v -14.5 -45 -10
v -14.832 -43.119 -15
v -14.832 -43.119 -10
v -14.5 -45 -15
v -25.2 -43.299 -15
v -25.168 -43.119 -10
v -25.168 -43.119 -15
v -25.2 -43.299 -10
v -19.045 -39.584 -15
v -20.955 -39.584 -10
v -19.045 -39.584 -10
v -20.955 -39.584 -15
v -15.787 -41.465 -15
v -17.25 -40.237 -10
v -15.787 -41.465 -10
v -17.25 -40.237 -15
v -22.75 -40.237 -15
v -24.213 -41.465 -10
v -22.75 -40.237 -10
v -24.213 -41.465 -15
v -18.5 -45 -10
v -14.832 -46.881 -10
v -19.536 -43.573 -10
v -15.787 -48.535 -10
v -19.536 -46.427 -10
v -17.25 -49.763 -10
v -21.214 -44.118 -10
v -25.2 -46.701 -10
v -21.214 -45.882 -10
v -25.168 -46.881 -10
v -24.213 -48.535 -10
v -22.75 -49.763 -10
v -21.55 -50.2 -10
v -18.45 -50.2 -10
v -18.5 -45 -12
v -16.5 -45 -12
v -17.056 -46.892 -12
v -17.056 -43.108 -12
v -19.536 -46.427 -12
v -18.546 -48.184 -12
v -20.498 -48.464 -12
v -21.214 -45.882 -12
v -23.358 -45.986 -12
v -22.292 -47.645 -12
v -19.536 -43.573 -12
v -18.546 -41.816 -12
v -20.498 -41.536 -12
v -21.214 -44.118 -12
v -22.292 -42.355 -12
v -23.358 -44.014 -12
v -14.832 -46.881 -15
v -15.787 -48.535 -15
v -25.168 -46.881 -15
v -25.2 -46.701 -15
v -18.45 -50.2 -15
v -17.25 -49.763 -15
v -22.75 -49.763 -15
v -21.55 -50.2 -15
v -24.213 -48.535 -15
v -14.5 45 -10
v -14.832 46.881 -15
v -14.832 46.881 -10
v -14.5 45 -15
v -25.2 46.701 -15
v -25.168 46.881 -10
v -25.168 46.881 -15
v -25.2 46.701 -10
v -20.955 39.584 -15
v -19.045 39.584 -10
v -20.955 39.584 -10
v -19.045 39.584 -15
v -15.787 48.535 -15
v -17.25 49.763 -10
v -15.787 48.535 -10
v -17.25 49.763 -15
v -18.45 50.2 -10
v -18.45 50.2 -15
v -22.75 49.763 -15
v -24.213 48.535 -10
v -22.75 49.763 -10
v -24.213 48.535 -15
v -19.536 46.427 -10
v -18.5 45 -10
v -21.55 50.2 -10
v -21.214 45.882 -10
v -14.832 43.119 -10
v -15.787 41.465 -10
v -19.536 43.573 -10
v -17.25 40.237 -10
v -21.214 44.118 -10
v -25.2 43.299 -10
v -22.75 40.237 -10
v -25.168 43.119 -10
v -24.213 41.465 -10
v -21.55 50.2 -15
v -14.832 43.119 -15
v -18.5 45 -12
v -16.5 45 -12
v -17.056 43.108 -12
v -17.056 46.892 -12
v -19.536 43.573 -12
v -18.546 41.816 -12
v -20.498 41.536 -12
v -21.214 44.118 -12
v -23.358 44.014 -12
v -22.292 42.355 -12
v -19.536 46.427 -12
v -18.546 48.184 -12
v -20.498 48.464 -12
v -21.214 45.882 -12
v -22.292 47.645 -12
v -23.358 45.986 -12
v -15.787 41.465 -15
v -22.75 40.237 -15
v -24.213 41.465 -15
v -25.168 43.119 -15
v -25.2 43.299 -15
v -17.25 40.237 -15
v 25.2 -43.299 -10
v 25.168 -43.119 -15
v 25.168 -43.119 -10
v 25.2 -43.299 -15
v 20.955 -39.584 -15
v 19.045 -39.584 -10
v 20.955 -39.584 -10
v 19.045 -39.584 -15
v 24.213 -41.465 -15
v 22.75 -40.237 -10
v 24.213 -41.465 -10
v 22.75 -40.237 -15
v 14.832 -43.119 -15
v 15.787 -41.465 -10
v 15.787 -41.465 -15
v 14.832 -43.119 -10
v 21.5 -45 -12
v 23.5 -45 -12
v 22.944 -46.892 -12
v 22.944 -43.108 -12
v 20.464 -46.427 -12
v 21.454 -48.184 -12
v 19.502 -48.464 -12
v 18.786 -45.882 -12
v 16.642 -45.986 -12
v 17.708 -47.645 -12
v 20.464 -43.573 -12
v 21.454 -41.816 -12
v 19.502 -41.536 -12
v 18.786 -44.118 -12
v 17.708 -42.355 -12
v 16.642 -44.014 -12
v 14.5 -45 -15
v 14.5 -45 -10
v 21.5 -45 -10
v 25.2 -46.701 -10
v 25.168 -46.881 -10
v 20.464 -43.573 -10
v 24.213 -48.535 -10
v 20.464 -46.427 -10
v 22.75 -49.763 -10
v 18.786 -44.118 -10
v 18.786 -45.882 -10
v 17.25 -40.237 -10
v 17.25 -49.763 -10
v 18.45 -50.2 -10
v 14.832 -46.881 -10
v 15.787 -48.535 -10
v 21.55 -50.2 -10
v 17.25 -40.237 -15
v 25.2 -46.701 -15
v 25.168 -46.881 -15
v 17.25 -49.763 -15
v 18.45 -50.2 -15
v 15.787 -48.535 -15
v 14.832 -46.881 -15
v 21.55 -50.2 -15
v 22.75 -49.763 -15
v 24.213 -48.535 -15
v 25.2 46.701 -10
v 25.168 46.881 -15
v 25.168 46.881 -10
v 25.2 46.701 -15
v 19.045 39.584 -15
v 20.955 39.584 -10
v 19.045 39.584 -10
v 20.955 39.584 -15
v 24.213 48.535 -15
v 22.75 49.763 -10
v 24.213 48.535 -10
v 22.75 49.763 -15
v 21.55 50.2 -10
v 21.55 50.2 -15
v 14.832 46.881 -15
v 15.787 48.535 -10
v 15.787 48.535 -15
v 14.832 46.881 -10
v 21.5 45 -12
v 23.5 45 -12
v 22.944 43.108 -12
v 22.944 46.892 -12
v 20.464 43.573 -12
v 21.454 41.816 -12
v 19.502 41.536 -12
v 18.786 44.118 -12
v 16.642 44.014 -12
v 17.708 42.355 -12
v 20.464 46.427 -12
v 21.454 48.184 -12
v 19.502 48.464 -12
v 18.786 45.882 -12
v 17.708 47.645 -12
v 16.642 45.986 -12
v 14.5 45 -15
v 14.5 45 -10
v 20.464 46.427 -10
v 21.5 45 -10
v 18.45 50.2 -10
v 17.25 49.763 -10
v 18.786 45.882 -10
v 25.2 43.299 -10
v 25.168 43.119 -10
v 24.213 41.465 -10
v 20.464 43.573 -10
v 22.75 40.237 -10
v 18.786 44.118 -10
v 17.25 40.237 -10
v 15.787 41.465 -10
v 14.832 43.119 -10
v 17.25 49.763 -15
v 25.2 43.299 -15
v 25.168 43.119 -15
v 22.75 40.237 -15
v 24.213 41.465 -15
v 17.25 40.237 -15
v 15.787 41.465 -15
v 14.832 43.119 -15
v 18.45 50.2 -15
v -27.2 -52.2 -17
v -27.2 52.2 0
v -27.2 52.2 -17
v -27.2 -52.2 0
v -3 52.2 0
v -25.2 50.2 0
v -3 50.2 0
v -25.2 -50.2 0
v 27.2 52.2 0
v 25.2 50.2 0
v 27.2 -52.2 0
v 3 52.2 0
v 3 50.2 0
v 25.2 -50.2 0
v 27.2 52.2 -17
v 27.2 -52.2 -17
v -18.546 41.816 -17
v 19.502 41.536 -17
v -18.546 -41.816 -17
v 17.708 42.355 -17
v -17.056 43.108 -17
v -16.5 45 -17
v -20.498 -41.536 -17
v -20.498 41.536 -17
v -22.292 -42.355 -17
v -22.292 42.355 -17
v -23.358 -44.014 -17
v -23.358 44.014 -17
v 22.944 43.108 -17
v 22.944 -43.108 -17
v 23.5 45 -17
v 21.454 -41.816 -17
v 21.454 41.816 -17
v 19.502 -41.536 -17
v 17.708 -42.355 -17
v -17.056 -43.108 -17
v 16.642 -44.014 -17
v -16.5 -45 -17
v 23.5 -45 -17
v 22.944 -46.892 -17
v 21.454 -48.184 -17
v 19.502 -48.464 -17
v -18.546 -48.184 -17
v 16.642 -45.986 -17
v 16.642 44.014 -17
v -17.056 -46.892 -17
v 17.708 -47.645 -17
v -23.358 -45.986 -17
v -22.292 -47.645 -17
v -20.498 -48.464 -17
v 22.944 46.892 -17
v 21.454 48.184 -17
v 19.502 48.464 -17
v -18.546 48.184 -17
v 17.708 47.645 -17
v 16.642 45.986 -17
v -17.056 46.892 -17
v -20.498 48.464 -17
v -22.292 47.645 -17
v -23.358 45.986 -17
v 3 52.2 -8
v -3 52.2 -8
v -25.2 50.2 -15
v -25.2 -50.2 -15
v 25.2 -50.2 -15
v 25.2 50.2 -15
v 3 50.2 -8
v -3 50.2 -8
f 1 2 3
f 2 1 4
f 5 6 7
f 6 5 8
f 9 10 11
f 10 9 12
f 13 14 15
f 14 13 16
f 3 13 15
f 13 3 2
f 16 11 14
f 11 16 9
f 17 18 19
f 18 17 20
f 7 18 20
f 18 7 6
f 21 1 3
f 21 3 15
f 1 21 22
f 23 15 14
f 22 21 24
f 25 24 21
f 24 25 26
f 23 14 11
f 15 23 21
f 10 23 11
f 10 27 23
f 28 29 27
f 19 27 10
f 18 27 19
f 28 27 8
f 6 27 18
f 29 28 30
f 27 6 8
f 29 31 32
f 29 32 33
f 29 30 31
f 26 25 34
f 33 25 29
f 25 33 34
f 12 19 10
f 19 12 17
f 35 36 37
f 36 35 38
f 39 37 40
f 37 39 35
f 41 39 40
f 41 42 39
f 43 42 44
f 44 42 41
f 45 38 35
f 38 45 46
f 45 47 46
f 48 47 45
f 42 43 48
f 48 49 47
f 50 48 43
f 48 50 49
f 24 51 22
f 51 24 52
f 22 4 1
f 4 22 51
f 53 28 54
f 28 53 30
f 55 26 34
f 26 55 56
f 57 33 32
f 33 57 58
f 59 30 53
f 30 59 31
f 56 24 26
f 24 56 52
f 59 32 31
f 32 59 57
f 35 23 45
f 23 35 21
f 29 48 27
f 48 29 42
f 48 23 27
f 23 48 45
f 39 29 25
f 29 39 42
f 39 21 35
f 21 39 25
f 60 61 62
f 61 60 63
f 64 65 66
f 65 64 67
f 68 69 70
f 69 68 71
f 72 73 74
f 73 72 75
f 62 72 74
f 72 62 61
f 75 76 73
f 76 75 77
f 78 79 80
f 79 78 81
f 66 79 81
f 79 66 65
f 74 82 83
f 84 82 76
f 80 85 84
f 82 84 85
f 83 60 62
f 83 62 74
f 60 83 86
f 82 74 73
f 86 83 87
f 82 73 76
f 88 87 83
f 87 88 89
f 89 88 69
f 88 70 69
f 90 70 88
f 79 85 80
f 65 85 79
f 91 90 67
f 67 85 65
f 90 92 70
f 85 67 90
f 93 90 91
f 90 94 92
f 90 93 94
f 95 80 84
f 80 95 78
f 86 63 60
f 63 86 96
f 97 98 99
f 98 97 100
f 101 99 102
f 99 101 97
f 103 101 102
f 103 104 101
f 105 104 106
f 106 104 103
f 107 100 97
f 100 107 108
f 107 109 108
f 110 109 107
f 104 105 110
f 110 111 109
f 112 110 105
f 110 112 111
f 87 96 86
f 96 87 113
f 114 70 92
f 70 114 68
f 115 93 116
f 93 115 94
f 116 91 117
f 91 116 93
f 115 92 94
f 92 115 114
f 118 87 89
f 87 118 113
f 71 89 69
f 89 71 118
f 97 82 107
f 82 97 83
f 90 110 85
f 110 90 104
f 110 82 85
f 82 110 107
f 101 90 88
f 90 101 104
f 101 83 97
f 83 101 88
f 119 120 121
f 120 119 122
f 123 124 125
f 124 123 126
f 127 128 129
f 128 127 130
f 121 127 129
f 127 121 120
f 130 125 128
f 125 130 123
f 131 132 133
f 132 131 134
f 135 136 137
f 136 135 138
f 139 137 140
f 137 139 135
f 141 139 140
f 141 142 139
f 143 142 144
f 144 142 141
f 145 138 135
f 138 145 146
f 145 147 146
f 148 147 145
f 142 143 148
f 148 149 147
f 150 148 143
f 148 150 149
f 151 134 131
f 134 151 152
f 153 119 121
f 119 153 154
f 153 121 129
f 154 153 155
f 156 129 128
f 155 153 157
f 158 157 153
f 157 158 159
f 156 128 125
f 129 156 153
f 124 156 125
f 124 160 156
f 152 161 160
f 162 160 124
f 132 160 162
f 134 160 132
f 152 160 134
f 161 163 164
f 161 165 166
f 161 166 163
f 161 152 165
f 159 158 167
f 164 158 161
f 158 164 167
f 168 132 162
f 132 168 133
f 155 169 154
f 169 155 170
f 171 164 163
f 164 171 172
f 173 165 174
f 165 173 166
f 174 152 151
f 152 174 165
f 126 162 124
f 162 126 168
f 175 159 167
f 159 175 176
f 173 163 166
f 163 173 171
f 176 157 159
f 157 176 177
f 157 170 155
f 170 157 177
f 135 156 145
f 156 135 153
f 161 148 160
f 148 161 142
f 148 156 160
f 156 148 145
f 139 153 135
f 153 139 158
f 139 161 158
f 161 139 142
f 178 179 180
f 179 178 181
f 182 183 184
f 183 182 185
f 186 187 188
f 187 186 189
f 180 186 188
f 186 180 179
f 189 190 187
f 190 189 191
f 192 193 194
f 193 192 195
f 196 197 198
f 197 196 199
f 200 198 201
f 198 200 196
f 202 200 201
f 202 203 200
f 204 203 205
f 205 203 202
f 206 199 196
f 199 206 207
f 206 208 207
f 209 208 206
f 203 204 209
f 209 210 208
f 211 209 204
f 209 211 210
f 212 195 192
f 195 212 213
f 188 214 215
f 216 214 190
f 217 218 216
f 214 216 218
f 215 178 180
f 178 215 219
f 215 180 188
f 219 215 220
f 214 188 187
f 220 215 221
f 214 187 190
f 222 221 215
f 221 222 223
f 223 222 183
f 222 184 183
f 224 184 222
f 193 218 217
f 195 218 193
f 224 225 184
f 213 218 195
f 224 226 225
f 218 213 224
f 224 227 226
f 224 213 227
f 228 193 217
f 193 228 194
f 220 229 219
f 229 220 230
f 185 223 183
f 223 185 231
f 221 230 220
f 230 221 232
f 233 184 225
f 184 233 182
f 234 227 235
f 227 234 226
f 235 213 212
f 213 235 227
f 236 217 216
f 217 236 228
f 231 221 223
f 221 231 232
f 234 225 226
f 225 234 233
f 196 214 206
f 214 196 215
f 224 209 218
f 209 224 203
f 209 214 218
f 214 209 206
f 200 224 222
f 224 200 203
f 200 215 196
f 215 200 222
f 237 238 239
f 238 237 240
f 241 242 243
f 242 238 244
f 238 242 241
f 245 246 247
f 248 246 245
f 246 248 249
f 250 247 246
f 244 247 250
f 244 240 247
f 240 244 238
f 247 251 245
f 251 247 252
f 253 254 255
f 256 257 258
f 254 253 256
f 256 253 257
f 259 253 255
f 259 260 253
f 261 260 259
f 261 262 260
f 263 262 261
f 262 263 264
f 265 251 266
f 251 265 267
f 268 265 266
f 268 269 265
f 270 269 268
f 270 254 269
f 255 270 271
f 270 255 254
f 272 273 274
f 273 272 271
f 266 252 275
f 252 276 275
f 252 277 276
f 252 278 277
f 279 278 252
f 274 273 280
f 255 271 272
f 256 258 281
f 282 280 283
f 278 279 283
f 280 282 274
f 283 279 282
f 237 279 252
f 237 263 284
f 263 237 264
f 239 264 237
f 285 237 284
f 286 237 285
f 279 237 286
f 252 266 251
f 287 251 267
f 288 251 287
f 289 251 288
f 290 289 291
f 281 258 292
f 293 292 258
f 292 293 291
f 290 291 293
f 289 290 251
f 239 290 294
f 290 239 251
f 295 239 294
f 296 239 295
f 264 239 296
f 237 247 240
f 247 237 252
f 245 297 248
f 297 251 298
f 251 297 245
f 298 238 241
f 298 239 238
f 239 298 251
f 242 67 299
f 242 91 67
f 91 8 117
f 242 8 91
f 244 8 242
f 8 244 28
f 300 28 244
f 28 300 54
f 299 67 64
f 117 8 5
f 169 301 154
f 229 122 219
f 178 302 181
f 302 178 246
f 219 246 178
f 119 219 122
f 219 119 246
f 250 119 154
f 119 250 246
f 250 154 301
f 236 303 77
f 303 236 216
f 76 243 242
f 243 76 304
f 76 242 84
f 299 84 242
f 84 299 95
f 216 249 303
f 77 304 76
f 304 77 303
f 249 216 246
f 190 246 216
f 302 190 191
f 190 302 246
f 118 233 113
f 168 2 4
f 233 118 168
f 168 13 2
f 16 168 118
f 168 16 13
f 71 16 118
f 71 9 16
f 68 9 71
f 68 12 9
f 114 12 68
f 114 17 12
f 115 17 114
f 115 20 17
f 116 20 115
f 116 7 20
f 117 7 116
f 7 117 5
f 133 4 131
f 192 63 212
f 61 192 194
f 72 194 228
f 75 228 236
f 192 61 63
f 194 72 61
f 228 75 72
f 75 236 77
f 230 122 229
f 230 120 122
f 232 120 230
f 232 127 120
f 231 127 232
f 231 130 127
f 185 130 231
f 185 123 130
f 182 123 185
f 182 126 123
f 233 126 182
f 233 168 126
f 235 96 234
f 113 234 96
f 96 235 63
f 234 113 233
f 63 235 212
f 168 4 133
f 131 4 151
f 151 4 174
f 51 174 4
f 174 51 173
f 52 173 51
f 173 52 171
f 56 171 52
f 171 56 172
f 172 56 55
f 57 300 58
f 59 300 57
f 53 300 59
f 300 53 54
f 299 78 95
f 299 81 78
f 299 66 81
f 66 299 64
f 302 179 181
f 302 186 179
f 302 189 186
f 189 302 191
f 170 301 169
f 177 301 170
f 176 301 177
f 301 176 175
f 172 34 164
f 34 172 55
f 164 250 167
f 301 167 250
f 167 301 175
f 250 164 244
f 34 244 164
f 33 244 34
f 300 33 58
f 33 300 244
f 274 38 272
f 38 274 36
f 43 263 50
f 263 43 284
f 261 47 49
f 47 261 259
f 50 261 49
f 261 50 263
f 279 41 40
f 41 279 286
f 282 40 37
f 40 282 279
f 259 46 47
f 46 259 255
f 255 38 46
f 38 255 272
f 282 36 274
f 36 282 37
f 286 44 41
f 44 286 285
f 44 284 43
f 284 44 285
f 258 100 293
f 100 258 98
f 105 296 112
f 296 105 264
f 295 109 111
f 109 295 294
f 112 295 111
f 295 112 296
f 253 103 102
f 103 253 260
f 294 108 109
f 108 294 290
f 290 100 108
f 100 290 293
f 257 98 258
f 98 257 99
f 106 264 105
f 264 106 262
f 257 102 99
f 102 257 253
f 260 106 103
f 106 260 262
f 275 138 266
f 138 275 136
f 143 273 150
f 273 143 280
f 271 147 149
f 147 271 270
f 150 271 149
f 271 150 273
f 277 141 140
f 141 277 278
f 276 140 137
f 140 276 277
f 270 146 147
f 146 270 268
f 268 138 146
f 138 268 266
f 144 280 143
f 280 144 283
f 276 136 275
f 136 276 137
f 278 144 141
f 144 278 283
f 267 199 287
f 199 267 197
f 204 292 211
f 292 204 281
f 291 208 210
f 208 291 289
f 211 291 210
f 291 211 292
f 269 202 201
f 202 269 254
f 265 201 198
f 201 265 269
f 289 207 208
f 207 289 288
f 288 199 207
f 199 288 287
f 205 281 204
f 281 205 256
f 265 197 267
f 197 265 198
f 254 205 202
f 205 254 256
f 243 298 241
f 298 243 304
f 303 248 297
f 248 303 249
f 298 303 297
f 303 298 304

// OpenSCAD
DEPTH=15;
SIZEX=25;
SIZEY=50;
HOLE=5;

MARGIN=0.2;
THICK=2.0;

DIFF=THICK/2;

// OUTER BOX

difference() {

translate([-SIZEX-MARGIN-THICK,-SIZEY-MARGIN-THICK,-DEPTH-THICK]) {    
cube([SIZEX*2+MARGIN*2+THICK*2,SIZEY*2+MARGIN*2+THICK*2,DEPTH+THICK]);
}

{
translate([-SIZEX-MARGIN,-SIZEY-MARGIN,-DEPTH]) {  
cube([SIZEX*2+MARGIN*2,SIZEY*2+MARGIN*2,DEPTH]);
}

// Mounting Hole

translate([-SIZEX+HOLE,-SIZEY+HOLE,-DEPTH-THICK]) {
cylinder(THICK,3.5,3.5);    
}

translate([-SIZEX+HOLE,SIZEY-HOLE,-DEPTH-THICK]) {
cylinder(THICK,3.5,3.5);    
}

translate([SIZEX-HOLE,-SIZEY+HOLE,-DEPTH-THICK]) {
cylinder(THICK,3.5,3.5);    
}

translate([SIZEX-HOLE,SIZEY-HOLE,-DEPTH-THICK]) {
cylinder(THICK,3.5,3.5);    
}

// Cable Guide

translate([-3,SIZEY,-8]) {
    cube([6,6,8]);
}

}

}

// Mounting Hole

difference() {
translate([-SIZEX+HOLE,-SIZEY+HOLE,-DEPTH]) {
cylinder(DEPTH-12,5.5,5.5);    
}
translate([-SIZEX+HOLE,-SIZEY+HOLE,-DEPTH]) {
cylinder(DEPTH-12,3.5,3.5);    
}
}

difference() {
translate([-SIZEX+HOLE,-SIZEY+HOLE,-12]) {
cylinder(2,5.5,5.5);    
}

translate([-SIZEX+HOLE,-SIZEY+HOLE,-12]) {
cylinder(2,1.5,1.5);    
}
}


difference() {
translate([-SIZEX+HOLE,SIZEY-HOLE,-DEPTH]) {
cylinder(DEPTH-12,5.5,5.5);    
}
translate([-SIZEX+HOLE,SIZEY-HOLE,-DEPTH]) {
cylinder(DEPTH-12,3.5,3.5);    
}
}

difference() {
translate([-SIZEX+HOLE,SIZEY-HOLE,-12]) {
cylinder(2,5.5,5.5);    
}

translate([-SIZEX+HOLE,SIZEY-HOLE,-12]) {
cylinder(2,1.5,1.5);    
}
}


difference() {
translate([SIZEX-HOLE,-SIZEY+HOLE,-DEPTH]) {
cylinder(DEPTH-12,5.5,5.5);    
}
translate([SIZEX-HOLE,-SIZEY+HOLE,-DEPTH]) {
cylinder(DEPTH-12,3.5,3.5);    
}
}

difference() {
translate([SIZEX-HOLE,-SIZEY+HOLE,-12]) {
cylinder(2,5.5,5.5);    
}

translate([SIZEX-HOLE,-SIZEY+HOLE,-12]) {
cylinder(2,1.5,1.5);    
}
}


difference() {
translate([SIZEX-HOLE,SIZEY-HOLE,-DEPTH]) {
cylinder(DEPTH-12,5.5,5.5);    
}
translate([SIZEX-HOLE,SIZEY-HOLE,-DEPTH]) {
cylinder(DEPTH-12,3.5,3.5);    
}
}

difference() {
translate([SIZEX-HOLE,SIZEY-HOLE,-12]) {
cylinder(2,5.5,5.5);    
}

translate([SIZEX-HOLE,SIZEY-HOLE,-12]) {
cylinder(2,1.5,1.5);    
}
}
